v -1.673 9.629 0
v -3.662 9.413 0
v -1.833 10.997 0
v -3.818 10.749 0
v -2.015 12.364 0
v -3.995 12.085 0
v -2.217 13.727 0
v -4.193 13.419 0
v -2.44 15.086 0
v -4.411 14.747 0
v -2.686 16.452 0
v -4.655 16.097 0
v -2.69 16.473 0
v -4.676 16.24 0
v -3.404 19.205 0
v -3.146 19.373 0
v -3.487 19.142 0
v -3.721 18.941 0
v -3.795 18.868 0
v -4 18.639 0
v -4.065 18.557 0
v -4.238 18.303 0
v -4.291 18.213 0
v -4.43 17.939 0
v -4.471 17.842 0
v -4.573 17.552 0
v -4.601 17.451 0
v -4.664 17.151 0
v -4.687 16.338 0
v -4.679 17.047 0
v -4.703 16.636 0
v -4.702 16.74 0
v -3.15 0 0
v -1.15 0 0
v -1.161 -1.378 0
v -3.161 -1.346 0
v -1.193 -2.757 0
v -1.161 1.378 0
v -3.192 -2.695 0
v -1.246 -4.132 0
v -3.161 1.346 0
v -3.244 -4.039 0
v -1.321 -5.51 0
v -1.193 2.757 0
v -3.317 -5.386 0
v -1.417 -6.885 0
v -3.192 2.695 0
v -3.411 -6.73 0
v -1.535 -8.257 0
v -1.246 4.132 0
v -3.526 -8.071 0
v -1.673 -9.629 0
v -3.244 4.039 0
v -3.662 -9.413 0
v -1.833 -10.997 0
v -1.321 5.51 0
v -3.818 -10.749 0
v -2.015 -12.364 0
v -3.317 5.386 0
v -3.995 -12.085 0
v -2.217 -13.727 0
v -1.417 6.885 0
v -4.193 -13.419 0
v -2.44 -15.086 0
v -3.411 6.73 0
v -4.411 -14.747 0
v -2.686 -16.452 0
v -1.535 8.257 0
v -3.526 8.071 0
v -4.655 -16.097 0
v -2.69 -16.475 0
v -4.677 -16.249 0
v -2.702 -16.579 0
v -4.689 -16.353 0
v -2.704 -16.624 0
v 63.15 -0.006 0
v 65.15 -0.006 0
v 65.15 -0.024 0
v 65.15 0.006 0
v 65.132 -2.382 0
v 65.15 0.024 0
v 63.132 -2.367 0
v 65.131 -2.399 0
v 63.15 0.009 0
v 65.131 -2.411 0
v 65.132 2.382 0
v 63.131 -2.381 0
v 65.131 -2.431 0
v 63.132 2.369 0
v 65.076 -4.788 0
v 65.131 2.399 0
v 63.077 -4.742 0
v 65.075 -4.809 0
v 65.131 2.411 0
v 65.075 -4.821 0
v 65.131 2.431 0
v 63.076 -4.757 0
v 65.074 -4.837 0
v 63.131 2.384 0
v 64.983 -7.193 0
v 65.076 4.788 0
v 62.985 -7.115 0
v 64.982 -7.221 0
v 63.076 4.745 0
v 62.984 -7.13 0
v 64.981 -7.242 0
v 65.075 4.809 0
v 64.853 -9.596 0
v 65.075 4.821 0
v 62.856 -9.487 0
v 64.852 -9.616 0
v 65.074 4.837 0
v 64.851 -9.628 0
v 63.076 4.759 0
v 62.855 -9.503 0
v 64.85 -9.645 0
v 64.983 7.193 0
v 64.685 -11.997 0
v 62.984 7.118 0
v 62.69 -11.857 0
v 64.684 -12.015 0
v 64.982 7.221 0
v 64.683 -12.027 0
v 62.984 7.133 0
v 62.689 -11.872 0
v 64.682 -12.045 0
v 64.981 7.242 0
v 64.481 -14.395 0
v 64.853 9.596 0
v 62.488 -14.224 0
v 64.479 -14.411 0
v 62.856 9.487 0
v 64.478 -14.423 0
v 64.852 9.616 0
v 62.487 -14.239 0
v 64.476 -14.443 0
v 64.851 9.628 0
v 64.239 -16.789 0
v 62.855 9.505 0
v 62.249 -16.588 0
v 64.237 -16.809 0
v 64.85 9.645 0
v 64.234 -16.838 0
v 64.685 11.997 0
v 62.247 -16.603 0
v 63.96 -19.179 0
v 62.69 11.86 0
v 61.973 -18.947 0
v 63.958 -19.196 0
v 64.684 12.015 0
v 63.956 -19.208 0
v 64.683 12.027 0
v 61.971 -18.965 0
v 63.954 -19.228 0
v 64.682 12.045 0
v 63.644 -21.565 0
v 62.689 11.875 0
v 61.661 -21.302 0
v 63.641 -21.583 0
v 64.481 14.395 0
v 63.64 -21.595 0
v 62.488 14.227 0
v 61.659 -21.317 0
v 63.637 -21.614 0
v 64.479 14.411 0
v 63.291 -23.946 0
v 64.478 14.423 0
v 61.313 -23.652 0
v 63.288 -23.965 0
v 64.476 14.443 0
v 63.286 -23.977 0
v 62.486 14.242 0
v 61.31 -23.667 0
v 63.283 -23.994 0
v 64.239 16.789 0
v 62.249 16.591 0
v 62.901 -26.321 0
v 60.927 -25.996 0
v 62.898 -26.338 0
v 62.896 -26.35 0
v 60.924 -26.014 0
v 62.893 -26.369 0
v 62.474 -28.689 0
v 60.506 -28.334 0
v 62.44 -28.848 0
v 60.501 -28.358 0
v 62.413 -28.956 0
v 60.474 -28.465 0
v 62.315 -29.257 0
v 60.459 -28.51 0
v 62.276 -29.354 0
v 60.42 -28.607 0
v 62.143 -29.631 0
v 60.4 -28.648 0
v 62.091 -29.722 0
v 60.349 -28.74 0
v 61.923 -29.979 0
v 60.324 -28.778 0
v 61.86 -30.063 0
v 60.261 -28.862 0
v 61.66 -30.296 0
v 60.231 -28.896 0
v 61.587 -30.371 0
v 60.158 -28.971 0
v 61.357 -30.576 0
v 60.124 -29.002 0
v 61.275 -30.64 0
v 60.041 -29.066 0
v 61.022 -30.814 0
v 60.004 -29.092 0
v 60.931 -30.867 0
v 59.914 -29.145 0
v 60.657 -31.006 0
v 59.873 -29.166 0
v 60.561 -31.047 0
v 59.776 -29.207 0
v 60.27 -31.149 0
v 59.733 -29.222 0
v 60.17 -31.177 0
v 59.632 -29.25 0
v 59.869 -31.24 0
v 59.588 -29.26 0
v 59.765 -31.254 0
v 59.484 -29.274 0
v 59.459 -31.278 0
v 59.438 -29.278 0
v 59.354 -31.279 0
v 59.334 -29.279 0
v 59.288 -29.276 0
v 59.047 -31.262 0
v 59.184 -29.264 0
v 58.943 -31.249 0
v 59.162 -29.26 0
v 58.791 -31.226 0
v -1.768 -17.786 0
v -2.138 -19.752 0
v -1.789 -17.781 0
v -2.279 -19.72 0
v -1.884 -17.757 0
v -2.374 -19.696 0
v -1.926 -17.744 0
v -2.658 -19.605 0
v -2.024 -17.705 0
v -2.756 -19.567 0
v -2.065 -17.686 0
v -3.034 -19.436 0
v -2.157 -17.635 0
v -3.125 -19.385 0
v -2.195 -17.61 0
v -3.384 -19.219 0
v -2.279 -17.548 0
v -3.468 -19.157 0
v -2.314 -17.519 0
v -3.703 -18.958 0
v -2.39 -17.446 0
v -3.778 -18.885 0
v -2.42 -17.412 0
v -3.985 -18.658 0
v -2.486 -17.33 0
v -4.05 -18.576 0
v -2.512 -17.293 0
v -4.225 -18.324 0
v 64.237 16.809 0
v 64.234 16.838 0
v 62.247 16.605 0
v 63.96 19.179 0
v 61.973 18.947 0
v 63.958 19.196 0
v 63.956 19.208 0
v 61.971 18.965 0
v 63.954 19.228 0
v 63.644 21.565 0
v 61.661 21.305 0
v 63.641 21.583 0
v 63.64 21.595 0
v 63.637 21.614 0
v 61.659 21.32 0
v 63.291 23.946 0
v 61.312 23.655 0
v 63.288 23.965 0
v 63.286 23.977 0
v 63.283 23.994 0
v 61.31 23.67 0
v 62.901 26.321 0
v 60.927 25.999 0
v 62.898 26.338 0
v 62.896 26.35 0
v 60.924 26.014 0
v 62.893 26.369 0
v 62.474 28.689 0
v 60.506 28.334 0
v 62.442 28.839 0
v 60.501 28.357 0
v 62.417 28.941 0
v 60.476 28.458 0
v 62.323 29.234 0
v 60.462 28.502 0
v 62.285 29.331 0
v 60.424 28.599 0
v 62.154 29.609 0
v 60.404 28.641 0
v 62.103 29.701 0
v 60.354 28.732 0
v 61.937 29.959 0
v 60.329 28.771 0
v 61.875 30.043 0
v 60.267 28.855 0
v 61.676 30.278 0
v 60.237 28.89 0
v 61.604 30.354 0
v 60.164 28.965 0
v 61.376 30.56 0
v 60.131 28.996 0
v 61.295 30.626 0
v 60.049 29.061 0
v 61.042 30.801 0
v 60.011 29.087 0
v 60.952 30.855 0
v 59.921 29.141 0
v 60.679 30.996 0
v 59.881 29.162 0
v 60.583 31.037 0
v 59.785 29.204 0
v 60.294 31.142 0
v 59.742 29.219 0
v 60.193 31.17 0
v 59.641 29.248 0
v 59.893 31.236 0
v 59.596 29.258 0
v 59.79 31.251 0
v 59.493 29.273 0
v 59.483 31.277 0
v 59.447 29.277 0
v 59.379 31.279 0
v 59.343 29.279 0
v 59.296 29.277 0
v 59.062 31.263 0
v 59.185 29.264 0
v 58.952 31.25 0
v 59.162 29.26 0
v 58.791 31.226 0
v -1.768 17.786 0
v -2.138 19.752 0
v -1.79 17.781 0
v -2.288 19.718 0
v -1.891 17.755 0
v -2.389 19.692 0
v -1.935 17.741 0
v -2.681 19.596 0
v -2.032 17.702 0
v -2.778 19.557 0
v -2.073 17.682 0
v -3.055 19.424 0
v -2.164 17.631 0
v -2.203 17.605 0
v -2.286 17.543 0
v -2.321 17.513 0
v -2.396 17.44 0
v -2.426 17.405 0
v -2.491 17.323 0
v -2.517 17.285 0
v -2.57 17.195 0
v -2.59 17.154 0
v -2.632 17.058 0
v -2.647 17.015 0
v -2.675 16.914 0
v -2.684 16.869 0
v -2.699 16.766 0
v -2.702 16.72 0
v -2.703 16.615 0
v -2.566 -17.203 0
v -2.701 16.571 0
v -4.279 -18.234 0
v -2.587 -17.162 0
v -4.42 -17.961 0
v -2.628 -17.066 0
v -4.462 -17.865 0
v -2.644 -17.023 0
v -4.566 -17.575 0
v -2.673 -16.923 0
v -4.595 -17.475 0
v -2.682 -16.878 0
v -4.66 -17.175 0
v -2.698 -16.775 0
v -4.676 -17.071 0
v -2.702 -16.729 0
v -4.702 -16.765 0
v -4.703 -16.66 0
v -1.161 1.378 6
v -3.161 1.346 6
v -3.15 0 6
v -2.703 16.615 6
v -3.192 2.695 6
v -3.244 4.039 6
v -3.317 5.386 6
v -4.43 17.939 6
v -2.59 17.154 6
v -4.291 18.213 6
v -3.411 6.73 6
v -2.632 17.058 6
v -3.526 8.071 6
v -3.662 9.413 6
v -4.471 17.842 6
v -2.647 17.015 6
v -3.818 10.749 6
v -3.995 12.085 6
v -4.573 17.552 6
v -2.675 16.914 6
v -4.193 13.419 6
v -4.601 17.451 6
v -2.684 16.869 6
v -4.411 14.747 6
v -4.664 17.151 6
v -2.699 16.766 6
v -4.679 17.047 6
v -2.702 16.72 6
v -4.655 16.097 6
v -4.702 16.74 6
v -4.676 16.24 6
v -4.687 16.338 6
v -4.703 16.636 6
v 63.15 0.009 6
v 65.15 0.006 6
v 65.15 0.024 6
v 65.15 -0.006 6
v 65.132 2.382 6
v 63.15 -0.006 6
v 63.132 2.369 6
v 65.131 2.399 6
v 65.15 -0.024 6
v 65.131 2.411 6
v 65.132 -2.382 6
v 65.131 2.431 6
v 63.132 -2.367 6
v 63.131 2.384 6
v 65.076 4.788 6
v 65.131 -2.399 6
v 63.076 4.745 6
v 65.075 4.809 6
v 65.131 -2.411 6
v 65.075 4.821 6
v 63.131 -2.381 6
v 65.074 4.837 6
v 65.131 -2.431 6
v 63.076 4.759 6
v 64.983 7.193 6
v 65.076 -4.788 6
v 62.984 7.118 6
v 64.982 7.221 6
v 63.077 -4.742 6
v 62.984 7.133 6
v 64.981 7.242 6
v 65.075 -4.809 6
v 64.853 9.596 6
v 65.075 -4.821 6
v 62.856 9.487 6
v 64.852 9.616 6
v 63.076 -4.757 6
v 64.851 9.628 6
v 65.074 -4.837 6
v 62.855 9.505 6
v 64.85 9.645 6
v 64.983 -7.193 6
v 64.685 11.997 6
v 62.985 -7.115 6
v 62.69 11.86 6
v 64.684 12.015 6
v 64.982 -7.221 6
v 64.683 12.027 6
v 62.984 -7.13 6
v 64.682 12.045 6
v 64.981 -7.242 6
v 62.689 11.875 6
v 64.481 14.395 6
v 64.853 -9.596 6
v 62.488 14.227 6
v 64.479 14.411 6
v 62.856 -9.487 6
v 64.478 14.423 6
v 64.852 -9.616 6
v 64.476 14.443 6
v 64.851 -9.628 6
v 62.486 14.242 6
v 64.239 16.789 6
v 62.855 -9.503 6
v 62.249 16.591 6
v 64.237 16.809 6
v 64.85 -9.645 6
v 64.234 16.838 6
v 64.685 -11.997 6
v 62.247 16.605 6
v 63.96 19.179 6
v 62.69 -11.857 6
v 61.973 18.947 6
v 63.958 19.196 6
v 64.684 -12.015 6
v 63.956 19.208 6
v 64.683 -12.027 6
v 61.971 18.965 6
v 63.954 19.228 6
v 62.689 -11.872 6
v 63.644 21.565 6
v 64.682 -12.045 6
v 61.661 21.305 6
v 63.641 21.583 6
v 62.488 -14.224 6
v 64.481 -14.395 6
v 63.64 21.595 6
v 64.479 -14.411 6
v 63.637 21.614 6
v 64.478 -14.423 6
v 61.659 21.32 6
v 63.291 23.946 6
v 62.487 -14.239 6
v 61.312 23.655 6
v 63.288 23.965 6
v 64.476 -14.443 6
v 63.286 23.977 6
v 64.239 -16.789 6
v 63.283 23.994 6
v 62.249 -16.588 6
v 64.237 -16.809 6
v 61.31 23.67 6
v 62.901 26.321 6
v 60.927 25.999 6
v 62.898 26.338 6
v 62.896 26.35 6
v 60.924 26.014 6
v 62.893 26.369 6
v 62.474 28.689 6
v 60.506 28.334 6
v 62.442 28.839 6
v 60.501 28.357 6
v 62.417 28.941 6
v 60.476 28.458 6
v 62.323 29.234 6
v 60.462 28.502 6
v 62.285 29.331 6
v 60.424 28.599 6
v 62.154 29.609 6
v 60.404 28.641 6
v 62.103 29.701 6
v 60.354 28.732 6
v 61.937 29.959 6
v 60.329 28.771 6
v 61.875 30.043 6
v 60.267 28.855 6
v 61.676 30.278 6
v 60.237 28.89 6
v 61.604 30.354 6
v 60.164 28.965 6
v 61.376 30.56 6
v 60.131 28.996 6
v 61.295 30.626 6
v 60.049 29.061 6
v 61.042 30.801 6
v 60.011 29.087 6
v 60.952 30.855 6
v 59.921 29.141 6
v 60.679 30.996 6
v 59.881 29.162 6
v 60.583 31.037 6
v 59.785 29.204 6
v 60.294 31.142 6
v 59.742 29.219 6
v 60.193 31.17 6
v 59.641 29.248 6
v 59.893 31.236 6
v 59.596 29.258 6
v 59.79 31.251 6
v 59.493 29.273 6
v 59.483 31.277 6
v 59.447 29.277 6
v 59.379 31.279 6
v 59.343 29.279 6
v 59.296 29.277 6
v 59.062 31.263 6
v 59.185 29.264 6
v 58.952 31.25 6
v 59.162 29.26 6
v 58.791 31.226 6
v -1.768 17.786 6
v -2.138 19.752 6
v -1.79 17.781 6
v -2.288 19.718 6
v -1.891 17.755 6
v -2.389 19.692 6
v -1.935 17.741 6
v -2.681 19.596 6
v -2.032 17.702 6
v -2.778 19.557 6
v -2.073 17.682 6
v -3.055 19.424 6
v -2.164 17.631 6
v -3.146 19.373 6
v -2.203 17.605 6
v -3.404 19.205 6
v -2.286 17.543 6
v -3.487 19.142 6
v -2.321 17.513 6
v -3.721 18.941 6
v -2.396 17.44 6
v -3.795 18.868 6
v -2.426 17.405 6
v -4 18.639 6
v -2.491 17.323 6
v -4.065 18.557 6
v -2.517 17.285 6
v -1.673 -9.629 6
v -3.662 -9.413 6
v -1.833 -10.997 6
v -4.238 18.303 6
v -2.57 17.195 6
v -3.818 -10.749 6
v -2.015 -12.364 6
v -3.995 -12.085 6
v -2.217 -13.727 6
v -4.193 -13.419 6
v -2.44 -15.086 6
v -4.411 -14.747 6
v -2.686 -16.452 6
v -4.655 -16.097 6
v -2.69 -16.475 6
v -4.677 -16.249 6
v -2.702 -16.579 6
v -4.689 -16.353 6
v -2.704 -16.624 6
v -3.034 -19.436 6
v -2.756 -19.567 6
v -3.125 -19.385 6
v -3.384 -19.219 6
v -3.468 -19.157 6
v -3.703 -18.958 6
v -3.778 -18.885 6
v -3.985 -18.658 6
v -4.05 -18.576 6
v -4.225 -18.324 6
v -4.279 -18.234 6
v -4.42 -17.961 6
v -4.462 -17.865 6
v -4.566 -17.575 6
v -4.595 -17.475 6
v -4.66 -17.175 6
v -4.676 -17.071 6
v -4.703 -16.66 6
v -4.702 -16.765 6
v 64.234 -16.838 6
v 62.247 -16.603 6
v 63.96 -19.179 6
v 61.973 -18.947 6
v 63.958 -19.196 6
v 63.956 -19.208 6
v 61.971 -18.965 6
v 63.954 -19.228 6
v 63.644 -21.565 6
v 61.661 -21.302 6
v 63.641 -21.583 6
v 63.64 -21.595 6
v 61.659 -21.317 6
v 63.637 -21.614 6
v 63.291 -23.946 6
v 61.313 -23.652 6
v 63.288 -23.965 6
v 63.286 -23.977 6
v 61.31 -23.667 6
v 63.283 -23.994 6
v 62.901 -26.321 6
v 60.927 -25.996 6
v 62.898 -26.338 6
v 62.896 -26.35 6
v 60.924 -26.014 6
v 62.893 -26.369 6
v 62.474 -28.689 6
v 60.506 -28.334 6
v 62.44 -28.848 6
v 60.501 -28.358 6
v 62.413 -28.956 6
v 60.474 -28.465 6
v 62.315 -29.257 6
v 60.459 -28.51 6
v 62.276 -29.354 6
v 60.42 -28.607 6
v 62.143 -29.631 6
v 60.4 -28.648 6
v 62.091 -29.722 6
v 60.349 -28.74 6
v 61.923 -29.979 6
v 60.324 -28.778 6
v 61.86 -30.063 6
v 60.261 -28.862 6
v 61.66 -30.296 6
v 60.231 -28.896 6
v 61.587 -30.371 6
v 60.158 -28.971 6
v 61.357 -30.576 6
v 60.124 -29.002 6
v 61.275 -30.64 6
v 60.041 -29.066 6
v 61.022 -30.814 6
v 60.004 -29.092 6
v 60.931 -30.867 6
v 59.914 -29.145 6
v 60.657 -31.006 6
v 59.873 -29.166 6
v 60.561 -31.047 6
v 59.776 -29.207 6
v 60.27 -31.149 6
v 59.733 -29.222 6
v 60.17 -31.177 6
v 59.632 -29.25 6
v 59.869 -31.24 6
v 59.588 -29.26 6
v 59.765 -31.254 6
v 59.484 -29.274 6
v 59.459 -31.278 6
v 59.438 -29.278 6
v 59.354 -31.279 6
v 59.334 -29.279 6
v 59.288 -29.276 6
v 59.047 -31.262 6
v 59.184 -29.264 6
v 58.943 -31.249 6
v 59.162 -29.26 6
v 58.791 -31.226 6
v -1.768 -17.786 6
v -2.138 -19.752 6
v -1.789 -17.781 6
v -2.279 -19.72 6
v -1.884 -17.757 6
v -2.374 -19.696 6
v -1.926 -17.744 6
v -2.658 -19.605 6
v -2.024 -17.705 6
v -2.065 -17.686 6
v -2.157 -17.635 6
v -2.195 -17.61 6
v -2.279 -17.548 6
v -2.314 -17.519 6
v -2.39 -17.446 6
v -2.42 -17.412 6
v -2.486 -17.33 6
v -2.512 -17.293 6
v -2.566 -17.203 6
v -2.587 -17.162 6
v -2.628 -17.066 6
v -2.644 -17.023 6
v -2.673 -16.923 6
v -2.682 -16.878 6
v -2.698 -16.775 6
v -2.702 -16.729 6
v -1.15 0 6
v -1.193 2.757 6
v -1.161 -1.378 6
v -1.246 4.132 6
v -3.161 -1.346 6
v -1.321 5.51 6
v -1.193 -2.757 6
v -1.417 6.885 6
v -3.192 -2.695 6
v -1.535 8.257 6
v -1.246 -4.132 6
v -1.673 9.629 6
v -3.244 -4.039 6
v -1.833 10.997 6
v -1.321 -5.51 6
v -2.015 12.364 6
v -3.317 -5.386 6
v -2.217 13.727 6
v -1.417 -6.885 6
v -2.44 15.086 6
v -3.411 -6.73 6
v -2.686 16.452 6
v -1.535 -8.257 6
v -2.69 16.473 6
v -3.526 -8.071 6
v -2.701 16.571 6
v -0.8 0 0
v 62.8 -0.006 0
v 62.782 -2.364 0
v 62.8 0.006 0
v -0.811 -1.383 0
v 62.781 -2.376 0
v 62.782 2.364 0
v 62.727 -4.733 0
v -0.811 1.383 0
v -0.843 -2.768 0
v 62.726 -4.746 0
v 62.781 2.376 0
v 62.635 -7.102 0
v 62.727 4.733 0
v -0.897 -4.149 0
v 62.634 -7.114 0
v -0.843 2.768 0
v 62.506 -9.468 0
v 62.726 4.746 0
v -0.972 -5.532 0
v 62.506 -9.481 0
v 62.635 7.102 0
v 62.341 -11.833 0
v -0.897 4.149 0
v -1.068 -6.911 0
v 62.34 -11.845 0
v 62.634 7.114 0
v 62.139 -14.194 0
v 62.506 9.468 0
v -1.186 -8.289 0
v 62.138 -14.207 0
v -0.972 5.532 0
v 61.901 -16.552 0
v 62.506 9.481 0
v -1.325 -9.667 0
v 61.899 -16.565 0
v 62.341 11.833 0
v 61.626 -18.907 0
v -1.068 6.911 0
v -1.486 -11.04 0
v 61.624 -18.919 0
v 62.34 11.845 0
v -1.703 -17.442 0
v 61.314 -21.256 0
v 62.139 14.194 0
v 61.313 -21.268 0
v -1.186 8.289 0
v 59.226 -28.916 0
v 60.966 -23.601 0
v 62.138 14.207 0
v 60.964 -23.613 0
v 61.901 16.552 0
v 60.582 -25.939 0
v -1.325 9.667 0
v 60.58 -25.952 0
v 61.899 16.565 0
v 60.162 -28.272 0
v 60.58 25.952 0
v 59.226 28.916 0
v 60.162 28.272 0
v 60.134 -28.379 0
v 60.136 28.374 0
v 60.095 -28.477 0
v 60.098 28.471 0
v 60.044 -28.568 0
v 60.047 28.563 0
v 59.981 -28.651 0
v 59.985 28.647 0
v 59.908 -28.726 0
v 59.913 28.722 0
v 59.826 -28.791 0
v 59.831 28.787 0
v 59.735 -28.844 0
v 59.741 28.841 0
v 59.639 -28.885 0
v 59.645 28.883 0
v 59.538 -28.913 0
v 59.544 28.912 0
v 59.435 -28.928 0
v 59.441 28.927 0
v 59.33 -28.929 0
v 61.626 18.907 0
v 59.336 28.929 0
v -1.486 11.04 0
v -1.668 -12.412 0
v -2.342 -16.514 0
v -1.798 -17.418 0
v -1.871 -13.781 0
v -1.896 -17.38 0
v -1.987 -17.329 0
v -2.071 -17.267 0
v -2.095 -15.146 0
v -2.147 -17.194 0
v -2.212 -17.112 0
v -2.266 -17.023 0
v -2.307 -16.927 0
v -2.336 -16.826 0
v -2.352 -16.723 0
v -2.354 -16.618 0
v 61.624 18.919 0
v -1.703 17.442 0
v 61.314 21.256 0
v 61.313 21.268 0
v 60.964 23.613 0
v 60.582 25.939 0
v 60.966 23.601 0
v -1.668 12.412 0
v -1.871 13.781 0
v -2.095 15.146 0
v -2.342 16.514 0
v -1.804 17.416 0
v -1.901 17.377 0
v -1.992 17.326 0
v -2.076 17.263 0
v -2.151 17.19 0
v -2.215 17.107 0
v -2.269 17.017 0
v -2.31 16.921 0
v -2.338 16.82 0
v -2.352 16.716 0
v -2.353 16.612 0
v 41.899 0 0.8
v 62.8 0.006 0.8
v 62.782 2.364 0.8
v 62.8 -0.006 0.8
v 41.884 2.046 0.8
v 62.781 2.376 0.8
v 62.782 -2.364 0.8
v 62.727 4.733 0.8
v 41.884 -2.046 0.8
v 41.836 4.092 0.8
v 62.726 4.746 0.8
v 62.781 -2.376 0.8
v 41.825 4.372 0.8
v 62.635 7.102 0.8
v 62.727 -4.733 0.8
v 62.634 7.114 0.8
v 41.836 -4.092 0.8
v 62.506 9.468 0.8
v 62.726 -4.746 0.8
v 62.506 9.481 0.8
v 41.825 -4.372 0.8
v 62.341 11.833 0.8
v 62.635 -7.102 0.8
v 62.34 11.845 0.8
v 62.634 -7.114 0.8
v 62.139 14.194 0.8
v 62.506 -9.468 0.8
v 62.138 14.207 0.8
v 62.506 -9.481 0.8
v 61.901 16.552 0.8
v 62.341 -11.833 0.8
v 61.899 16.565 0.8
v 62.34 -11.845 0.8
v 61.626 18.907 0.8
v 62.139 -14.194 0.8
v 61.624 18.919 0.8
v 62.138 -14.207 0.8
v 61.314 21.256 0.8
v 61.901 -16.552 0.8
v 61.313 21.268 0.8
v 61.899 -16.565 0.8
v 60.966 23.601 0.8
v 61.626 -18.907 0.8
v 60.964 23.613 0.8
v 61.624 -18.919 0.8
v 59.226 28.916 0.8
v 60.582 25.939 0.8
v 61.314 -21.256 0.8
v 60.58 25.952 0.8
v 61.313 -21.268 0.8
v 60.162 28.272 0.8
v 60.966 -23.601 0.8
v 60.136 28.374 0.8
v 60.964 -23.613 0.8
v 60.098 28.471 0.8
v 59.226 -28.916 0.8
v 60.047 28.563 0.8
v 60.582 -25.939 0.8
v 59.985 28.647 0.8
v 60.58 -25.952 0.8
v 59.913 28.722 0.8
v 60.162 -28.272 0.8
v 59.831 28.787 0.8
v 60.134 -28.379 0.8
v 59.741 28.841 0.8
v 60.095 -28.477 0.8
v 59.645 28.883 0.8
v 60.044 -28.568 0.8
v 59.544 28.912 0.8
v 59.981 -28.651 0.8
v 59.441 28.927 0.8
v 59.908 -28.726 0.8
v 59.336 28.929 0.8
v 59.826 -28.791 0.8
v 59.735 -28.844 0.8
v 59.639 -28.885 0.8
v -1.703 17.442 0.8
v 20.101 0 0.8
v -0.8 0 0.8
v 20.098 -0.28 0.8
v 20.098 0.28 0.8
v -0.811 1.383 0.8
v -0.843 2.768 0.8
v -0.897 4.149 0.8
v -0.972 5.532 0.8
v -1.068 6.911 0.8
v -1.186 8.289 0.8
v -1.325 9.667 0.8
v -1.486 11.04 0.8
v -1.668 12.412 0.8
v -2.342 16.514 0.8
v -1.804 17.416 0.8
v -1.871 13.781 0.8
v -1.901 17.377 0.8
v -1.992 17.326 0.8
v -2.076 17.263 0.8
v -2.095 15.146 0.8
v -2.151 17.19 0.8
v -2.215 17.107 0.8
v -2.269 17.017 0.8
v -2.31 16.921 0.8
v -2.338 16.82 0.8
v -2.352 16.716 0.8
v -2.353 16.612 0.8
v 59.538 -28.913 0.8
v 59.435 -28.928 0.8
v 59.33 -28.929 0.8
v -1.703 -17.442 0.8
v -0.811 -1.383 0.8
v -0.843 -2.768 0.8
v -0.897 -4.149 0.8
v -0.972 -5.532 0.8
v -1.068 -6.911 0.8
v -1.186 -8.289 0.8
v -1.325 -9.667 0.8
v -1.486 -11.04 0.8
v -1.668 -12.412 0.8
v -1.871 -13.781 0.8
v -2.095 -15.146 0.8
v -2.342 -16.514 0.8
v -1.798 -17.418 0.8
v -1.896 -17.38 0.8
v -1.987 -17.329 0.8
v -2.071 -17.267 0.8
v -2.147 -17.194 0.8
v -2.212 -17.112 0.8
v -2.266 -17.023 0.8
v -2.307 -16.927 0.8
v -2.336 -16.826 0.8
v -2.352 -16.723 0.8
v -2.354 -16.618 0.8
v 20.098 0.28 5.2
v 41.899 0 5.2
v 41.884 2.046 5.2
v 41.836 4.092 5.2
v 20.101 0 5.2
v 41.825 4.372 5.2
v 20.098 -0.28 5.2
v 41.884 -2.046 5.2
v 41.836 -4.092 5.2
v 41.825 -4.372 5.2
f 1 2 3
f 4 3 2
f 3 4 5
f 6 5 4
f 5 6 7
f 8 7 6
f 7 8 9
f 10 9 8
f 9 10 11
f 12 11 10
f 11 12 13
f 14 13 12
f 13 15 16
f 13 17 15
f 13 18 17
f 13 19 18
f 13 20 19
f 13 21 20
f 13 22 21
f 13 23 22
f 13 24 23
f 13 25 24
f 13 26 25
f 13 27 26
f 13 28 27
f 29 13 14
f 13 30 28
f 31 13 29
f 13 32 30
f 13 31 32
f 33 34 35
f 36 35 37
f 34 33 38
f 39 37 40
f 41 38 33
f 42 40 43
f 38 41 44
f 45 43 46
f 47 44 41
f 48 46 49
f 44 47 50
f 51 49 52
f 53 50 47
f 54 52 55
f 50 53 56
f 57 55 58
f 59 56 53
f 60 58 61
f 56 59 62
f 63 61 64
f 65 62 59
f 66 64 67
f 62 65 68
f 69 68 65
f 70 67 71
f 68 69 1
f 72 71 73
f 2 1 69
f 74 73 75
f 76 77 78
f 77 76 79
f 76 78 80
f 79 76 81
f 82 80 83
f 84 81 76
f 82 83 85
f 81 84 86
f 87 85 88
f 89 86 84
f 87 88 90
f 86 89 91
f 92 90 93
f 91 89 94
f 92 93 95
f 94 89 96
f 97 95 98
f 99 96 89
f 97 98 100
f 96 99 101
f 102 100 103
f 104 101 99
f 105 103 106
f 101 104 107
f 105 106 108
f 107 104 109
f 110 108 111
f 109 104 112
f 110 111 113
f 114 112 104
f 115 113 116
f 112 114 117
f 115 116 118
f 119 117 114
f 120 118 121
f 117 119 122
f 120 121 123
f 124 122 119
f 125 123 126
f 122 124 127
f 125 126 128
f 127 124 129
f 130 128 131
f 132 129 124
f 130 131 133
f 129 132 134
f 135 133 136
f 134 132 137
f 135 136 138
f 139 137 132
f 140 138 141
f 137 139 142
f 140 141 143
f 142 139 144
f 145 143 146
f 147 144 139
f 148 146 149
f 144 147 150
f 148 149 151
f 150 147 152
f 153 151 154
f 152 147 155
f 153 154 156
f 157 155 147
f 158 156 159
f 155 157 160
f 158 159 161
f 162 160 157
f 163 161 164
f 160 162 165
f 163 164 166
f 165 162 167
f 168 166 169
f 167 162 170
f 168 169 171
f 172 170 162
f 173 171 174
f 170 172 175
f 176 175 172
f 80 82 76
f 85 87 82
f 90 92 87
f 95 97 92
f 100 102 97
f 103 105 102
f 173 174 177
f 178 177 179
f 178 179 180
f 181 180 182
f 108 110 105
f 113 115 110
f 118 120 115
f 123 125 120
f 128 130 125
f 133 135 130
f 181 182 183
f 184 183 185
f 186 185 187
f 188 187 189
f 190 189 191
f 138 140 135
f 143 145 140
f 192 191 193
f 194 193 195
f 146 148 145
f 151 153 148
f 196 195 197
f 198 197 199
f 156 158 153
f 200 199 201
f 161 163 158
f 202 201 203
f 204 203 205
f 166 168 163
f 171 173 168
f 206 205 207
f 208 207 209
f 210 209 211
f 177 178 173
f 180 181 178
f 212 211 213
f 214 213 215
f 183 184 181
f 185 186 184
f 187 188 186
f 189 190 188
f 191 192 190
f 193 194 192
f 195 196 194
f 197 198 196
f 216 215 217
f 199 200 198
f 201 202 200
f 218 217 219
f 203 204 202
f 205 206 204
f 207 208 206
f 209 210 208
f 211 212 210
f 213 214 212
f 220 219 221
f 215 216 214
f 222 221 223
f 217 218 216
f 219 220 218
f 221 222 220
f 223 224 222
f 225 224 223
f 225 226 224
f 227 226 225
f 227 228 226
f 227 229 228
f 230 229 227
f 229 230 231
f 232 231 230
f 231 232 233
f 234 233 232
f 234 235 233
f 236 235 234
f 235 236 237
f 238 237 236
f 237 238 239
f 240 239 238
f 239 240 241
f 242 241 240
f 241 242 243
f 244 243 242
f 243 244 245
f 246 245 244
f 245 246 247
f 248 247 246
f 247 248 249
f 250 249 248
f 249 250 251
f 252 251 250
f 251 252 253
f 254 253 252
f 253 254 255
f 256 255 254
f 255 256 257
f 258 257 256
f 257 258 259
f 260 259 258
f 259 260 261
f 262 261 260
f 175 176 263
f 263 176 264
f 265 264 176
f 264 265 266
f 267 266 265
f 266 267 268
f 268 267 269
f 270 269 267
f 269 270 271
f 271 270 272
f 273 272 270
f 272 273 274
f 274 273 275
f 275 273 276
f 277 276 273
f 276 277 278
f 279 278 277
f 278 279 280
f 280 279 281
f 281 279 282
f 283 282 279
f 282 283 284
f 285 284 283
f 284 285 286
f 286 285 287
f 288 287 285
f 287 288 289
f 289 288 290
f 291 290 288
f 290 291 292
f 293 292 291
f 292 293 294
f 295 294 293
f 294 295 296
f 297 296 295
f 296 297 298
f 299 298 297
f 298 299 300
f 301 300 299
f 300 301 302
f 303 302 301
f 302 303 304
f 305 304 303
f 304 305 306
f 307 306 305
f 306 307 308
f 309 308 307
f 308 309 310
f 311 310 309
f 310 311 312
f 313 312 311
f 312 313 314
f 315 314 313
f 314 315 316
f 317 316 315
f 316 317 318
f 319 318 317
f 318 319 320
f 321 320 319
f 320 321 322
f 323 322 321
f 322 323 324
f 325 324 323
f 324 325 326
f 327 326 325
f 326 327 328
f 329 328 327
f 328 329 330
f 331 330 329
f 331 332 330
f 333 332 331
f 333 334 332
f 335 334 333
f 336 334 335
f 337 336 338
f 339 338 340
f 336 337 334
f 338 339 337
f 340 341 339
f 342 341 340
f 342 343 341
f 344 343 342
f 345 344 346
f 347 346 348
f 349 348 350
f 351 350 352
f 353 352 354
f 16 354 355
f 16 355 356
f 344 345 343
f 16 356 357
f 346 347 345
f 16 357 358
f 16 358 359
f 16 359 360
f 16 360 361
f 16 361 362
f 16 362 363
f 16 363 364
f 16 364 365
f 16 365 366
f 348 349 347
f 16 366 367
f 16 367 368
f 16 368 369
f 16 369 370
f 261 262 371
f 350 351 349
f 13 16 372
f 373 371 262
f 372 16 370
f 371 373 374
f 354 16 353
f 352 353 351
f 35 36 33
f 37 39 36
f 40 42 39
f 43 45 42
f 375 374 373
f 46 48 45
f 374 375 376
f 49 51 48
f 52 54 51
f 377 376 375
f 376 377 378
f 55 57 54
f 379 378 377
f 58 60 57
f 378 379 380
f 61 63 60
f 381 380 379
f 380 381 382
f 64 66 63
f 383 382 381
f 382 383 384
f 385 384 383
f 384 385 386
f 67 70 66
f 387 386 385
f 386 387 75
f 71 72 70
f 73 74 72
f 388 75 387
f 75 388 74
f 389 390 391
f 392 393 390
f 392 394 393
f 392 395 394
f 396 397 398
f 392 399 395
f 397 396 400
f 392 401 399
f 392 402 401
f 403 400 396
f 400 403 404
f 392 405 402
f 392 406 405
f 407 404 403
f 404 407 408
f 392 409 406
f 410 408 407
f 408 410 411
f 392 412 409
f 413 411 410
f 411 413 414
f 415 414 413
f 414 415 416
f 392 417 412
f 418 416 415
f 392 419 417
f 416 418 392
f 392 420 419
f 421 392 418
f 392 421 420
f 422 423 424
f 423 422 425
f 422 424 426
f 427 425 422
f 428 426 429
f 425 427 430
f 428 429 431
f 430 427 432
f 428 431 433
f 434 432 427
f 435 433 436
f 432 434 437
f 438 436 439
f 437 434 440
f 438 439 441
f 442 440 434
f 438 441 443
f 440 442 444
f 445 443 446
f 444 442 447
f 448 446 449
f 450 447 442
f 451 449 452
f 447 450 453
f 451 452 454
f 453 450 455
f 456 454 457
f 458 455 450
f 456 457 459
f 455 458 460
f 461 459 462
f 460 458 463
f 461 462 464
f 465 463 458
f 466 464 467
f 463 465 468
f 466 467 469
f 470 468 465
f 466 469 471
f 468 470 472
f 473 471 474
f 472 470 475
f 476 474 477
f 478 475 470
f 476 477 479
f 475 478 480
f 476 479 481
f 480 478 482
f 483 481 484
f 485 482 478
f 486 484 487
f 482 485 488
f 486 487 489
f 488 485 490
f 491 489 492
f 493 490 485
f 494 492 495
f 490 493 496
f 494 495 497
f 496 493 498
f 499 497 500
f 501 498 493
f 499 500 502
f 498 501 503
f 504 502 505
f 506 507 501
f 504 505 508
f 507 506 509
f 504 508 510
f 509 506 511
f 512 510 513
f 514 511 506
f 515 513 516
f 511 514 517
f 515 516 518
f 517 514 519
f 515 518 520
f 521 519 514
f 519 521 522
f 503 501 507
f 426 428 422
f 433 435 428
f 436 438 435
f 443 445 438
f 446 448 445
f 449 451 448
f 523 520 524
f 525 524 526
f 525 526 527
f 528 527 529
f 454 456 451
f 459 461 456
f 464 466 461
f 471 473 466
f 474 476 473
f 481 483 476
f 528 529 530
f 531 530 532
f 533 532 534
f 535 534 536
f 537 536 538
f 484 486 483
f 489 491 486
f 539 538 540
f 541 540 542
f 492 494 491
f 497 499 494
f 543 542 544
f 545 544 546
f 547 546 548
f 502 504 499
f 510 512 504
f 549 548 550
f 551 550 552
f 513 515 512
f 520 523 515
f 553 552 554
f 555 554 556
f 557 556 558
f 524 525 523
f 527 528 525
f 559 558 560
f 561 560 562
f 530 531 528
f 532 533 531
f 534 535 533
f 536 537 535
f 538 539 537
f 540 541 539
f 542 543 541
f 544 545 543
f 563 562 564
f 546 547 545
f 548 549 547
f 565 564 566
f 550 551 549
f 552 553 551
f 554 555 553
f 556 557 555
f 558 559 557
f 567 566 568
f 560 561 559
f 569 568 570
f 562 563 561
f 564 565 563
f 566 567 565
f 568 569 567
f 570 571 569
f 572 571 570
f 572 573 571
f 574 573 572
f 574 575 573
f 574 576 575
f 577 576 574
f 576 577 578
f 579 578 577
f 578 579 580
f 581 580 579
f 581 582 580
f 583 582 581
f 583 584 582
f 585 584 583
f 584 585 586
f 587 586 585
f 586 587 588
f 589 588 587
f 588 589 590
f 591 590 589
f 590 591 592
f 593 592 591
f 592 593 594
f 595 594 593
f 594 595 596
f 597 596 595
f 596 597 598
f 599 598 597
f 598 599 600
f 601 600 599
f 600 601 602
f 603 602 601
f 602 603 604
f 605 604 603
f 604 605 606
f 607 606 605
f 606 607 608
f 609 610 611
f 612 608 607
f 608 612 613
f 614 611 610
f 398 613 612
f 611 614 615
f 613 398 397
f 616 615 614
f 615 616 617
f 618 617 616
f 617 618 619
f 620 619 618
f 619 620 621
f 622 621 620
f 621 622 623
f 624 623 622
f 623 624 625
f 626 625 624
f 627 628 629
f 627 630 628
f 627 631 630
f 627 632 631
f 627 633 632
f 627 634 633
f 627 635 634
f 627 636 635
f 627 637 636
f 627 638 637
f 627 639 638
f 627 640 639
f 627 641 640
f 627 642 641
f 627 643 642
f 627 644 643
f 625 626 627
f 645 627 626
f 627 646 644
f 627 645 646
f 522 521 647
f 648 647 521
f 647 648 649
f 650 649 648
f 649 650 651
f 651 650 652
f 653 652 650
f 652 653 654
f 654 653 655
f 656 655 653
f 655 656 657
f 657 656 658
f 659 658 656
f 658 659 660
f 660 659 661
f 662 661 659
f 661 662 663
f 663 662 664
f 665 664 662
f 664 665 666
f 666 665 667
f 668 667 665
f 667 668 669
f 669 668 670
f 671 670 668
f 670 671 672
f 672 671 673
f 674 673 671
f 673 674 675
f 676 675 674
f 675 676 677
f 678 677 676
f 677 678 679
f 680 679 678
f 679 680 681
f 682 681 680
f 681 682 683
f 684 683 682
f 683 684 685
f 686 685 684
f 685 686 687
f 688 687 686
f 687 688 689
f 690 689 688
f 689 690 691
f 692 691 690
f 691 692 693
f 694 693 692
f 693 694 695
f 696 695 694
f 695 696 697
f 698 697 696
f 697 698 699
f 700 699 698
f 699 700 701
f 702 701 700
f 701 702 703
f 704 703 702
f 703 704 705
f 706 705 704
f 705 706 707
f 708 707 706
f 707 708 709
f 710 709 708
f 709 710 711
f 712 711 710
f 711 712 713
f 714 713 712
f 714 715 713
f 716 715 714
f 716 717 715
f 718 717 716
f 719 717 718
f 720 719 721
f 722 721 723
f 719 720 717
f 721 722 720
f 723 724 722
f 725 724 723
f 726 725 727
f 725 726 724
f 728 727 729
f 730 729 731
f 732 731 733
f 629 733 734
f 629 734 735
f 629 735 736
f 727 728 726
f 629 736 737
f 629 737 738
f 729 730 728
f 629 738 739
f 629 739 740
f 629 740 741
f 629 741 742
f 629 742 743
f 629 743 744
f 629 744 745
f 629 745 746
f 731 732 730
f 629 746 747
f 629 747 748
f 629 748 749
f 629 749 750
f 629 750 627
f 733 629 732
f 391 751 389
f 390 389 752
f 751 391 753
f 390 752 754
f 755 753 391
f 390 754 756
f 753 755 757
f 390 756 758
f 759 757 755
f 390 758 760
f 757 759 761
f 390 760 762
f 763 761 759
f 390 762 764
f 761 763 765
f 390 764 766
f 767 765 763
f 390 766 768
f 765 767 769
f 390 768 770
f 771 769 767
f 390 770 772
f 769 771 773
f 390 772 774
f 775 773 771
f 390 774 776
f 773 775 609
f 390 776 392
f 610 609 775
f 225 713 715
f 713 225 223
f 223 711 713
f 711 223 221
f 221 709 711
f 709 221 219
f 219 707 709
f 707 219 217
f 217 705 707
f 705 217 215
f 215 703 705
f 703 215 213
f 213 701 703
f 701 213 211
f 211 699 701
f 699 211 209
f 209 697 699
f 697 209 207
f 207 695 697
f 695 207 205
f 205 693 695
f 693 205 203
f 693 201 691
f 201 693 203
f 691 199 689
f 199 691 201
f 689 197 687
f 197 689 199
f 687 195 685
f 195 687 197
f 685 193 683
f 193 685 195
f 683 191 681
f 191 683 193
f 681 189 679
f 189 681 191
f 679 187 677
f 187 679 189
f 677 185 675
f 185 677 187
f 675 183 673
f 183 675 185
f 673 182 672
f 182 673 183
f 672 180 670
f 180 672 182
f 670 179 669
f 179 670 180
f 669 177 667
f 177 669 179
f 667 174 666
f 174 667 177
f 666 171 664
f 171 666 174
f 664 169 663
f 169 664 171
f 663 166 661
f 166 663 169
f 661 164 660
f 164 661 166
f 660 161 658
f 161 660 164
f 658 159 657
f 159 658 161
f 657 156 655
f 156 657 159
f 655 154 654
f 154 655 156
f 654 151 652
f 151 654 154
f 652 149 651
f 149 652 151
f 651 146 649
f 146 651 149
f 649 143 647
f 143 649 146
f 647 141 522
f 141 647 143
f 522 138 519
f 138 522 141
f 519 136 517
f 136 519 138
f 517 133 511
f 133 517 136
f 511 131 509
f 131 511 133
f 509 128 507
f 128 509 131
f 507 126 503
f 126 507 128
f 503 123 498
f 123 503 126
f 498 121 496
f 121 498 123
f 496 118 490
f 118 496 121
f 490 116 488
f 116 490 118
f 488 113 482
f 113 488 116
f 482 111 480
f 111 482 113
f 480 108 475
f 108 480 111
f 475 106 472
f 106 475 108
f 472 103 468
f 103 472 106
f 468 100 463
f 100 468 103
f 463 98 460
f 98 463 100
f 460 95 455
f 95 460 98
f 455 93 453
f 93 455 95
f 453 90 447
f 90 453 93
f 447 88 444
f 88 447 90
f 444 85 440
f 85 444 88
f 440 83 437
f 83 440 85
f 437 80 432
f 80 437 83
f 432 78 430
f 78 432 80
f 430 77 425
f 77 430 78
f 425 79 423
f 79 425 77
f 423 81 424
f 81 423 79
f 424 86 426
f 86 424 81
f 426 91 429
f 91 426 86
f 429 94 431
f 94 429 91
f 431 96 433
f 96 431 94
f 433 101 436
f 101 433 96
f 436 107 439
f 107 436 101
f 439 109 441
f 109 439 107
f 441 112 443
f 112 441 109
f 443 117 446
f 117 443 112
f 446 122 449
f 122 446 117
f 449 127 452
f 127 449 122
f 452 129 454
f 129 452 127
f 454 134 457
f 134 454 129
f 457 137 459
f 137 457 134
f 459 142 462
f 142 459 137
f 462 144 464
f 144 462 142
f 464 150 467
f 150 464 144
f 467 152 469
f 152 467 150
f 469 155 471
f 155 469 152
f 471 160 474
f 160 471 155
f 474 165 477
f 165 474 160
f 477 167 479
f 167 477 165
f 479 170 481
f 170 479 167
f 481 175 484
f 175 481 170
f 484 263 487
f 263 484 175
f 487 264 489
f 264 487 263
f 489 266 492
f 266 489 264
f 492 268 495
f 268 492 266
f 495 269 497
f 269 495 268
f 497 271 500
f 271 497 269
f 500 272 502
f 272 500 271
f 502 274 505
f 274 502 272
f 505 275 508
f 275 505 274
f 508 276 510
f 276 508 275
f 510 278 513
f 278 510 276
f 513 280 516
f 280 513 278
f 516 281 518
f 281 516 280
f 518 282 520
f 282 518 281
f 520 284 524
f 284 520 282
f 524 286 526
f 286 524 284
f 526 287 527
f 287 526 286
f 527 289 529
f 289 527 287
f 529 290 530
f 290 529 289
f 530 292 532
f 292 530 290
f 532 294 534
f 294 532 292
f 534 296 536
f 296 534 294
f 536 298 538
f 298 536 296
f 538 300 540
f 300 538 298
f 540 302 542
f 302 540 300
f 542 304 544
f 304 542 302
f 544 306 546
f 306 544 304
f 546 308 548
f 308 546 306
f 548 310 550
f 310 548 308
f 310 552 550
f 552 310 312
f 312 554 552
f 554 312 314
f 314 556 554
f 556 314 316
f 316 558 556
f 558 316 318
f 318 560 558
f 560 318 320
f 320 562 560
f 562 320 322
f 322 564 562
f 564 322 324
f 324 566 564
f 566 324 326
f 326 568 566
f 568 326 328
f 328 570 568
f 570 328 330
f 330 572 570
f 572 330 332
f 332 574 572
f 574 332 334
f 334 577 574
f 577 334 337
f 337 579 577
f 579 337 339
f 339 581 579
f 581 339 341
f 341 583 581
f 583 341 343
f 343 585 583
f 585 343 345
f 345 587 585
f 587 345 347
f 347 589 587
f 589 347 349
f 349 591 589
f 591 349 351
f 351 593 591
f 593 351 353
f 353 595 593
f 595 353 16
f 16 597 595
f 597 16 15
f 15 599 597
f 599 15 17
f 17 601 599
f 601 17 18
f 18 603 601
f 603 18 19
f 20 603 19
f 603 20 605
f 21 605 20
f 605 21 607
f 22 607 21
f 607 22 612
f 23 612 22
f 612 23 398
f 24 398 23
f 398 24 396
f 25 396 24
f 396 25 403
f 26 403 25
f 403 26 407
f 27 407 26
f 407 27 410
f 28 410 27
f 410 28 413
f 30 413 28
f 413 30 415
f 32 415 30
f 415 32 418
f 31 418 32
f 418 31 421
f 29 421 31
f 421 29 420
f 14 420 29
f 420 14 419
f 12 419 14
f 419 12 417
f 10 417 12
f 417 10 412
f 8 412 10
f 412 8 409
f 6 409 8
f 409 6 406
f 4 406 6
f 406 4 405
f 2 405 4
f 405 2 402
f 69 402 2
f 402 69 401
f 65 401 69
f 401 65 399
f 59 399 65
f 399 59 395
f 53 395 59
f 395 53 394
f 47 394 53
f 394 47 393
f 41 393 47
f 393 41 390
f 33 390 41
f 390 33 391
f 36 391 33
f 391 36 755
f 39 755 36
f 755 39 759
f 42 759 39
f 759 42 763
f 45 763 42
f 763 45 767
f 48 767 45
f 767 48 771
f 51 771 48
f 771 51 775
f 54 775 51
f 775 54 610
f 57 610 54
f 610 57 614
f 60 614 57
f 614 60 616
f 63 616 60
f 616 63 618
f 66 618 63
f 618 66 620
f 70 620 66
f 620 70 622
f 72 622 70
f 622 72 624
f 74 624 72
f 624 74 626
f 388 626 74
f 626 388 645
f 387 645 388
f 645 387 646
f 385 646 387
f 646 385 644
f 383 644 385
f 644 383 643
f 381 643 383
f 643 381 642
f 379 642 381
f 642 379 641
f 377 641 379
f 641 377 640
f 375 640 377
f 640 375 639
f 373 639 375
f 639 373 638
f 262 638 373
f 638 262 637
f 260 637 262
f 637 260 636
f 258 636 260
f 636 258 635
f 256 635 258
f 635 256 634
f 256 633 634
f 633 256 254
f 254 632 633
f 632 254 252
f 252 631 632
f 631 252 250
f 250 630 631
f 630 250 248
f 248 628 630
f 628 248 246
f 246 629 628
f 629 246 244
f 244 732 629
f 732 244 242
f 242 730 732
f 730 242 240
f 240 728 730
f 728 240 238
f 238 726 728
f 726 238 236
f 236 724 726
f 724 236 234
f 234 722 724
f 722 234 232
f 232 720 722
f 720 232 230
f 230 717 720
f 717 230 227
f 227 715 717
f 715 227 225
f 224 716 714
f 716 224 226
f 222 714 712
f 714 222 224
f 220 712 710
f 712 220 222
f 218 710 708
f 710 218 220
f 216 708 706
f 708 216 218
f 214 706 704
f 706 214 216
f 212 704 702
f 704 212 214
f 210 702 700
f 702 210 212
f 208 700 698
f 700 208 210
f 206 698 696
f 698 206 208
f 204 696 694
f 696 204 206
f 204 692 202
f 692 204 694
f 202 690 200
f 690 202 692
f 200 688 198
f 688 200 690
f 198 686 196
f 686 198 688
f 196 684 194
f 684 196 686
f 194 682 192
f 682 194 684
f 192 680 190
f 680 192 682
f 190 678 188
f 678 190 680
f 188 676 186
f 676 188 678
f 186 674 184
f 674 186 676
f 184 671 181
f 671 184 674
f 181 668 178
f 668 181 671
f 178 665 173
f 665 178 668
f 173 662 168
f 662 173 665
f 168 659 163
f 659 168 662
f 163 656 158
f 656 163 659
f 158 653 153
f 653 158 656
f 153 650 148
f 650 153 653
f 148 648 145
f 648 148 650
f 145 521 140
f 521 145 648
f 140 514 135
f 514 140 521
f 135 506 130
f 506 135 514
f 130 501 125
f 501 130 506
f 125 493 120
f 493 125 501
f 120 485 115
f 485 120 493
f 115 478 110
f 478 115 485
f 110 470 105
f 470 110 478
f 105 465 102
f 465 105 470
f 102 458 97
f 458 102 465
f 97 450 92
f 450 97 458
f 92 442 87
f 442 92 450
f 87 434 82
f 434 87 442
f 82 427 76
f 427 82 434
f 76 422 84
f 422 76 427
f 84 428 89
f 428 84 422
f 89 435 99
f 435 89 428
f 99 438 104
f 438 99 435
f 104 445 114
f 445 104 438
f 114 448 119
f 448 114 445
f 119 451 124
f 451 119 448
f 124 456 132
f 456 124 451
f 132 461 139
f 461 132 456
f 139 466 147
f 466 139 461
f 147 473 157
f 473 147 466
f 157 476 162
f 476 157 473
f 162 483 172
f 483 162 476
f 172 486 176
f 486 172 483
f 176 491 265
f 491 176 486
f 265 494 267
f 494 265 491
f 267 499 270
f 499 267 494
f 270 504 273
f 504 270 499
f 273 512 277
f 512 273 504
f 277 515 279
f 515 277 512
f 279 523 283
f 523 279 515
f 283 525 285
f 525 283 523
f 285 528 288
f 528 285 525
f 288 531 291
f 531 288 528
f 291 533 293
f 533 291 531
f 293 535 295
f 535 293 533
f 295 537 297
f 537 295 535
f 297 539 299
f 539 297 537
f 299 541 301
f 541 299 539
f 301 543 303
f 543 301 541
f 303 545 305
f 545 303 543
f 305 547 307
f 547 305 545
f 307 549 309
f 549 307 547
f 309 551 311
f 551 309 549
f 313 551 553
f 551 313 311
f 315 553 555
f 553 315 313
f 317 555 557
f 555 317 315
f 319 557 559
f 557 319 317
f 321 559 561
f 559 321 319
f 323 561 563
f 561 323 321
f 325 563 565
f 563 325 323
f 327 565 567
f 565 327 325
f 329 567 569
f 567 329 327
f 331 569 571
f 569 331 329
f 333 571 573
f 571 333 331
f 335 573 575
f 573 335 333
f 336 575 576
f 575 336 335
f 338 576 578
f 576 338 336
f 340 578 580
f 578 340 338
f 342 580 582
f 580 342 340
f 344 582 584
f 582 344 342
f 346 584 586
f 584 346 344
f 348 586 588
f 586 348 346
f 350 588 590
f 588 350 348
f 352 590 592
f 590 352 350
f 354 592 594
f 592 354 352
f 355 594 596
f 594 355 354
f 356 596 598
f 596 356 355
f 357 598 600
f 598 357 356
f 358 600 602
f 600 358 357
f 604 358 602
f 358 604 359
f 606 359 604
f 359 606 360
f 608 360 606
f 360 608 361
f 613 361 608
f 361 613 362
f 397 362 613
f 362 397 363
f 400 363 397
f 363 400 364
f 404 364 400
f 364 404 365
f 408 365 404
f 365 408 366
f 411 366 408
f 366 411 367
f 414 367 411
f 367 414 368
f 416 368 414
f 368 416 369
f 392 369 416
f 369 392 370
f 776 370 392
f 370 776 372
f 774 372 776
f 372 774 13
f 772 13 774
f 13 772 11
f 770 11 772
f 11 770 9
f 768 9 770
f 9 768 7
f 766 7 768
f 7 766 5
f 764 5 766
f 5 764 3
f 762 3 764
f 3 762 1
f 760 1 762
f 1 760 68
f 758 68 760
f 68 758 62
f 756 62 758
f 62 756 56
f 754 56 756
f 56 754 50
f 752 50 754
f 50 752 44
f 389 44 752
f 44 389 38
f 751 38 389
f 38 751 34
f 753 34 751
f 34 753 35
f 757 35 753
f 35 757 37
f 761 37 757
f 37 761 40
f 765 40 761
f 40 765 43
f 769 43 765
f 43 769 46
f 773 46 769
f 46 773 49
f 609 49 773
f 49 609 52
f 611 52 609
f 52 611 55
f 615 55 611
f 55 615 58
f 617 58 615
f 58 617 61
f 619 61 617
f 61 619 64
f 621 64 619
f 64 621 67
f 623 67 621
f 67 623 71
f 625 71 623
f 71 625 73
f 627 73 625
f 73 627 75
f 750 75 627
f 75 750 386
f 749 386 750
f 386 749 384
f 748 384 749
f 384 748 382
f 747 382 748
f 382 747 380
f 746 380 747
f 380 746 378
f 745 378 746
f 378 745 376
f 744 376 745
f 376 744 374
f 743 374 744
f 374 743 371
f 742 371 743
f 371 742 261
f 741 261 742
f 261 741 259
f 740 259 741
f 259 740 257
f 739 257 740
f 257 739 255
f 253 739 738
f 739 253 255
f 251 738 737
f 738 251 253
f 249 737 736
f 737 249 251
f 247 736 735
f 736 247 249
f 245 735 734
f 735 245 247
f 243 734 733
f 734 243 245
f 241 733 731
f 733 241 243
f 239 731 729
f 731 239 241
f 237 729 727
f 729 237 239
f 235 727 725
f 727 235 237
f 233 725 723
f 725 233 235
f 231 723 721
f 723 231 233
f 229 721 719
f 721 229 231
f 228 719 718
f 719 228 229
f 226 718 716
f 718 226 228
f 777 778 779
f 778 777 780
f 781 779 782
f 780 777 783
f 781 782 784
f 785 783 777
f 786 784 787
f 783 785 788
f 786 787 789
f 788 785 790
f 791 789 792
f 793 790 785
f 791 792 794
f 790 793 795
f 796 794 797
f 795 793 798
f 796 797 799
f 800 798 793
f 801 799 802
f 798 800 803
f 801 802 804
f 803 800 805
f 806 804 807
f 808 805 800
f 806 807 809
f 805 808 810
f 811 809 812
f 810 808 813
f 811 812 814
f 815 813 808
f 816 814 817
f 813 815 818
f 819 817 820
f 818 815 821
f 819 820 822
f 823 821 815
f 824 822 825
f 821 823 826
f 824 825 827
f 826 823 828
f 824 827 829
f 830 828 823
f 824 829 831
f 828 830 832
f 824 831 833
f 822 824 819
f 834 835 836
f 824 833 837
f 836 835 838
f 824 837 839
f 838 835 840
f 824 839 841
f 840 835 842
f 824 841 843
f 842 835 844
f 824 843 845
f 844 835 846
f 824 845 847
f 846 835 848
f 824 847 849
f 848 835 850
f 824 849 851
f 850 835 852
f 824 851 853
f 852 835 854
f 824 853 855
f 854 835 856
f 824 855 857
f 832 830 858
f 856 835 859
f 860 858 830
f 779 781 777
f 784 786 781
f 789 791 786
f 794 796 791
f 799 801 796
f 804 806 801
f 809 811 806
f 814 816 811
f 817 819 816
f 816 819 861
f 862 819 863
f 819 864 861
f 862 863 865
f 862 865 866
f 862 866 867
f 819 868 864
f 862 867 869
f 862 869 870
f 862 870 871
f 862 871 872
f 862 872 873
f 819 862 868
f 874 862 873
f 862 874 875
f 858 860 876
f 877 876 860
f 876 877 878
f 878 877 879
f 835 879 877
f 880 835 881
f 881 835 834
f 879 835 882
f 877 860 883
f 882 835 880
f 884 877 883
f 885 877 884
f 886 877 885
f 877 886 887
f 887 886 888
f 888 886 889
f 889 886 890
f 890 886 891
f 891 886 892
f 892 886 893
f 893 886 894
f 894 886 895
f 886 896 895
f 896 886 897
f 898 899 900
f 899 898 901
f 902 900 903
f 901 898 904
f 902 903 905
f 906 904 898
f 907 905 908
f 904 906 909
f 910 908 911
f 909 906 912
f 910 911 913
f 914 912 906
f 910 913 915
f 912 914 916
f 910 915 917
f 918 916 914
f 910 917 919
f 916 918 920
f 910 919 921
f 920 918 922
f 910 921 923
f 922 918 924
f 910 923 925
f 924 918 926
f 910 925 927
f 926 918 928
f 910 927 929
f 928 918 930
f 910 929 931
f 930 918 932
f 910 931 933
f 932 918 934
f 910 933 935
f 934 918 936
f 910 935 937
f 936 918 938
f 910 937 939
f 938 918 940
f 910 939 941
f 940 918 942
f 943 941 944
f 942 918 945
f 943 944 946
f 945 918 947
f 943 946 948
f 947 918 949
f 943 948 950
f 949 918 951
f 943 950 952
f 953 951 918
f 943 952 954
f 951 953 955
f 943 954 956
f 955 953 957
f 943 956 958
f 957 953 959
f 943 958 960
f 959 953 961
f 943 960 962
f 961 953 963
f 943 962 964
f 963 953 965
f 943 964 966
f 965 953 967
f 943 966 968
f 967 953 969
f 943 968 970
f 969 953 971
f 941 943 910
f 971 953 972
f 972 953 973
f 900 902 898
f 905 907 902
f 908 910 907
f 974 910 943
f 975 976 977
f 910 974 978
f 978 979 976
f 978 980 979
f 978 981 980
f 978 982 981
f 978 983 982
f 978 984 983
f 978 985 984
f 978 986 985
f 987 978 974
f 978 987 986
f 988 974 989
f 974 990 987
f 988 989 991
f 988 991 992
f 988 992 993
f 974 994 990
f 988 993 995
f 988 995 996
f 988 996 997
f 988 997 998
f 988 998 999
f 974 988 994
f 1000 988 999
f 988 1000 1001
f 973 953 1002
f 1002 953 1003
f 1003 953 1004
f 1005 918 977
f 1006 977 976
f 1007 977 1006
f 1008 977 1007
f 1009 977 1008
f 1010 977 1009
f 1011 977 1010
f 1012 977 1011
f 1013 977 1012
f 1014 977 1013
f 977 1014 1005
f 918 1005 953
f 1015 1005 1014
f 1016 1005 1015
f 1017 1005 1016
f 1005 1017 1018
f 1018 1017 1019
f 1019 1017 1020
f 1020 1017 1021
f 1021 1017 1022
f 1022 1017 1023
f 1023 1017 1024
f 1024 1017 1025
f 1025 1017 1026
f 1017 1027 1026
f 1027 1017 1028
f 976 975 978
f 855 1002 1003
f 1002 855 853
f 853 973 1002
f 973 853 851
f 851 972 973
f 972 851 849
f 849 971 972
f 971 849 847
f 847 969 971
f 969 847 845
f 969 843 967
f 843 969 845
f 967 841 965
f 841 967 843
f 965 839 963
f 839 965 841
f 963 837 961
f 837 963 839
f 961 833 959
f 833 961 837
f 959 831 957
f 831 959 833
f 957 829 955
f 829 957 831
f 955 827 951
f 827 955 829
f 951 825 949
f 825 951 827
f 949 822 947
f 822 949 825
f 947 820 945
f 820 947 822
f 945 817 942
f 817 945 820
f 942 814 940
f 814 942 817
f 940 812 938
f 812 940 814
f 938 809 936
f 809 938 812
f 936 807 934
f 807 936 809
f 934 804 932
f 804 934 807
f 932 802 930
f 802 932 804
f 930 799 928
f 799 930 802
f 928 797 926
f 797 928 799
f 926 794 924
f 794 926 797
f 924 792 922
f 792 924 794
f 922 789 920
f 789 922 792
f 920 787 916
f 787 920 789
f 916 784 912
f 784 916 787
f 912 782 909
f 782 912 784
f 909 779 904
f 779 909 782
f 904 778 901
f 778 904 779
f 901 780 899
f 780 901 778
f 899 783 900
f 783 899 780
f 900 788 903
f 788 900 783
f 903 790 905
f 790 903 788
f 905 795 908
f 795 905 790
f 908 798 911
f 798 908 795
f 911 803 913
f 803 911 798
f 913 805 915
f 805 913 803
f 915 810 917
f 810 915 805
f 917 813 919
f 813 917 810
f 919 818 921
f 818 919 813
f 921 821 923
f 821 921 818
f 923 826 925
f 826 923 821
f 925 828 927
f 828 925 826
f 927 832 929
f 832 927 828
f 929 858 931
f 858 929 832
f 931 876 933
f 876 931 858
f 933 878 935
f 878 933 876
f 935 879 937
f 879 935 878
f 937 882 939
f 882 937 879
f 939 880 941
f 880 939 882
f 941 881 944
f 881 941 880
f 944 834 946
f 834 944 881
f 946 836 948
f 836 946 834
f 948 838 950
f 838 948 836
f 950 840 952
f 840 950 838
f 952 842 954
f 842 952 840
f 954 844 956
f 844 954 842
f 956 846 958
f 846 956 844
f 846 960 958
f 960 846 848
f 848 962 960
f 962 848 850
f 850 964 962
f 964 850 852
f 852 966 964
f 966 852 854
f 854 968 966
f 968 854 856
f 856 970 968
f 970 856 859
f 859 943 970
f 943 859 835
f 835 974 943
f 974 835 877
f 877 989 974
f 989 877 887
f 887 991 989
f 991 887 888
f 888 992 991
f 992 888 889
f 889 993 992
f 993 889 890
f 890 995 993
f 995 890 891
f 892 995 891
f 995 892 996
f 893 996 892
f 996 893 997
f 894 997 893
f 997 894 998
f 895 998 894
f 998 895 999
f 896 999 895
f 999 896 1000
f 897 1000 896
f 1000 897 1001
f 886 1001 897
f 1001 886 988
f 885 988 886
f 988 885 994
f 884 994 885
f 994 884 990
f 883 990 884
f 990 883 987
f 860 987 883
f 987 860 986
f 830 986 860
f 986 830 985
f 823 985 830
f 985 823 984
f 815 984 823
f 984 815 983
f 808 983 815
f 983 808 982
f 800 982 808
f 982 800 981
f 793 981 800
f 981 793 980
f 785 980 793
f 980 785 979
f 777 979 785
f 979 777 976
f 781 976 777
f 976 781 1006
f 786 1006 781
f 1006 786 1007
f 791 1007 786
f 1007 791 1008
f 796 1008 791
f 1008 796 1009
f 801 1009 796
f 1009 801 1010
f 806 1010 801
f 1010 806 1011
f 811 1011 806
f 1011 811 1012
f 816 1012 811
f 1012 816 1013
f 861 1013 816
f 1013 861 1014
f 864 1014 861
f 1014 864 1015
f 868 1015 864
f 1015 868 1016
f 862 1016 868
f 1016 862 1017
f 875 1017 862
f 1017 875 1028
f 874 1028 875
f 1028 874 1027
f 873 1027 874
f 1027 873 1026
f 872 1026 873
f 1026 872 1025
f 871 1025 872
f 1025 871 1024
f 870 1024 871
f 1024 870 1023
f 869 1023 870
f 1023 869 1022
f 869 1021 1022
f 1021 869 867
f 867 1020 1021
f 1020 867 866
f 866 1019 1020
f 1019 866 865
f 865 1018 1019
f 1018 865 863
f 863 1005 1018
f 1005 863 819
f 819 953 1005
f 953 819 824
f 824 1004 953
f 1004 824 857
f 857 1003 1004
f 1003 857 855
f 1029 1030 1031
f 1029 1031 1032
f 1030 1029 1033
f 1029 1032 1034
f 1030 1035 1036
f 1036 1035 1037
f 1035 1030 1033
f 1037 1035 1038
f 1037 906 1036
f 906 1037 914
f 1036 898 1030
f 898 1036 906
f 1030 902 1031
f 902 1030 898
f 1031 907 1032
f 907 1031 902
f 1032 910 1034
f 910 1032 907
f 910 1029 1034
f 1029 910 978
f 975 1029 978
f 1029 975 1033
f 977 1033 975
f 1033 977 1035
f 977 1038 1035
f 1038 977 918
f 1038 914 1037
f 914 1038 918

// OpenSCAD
// Gen-DP — fit coupon (bay part): O20/O5 THROUGH pockets at carrier thickness (test on a steel offcut), 608 seat,
// D-flat bore, gap shim, and one bobbin-bay slice (bobbin footprint + bay_clear) to test former fit.
include <parameters.scad>;
$fn = 48;
// D-flat keyed bore: flat faces +X (angle 0 = magnet pocket 0 = index notch)
module dflat_bore(h) {
    intersection() {
        cylinder(d=shaft_bore, h=h);
        translate([-shaft_bore, -shaft_bore, 0]) cube([shaft_bore + dflat_x, 2*shaft_bore, h]);
    }
}
module sector_2d(r_in, r_out, ang) {
    polygon([
        for (a = [-ang/2 : ang/24 : ang/2]) [r_in*cos(a), r_in*sin(a)],
        for (a = [ang/2 : -ang/24 : -ang/2]) [r_out*cos(a), r_out*sin(a)]
    ]);
}
module footprint_2d() { offset(r=wall) sector_2d(coil_id_r, coil_od_r, span_deg); }
module hub_2d()       { offset(delta=-coil_core_inset) sector_2d(coil_id_r, coil_od_r, span_deg); }

// bay slice at FULL stator thickness with one bobbin BASE printed IN PLACE inside it (bay_clear gap): this is the
// print-in-place test for the one-plate stator. After printing, the base must pop out with finger pressure; if it is fused,
// print coil_former.stl separately (print-packs/parts/) instead of using the in-place bases.
translate([-coil_id_r, 0, 0]) {
    difference() {
        linear_extrude(stator_thick) offset(r=bay_clear + 2) footprint_2d();
        translate([0, 0, -0.1]) linear_extrude(stator_thick + 0.2) offset(r=bay_clear) footprint_2d();
    }
    union() {
        linear_extrude(flange_t) footprint_2d();
        translate([0, 0, flange_t - 0.01]) linear_extrude(former_web + 0.01) hub_2d();
    }
}
